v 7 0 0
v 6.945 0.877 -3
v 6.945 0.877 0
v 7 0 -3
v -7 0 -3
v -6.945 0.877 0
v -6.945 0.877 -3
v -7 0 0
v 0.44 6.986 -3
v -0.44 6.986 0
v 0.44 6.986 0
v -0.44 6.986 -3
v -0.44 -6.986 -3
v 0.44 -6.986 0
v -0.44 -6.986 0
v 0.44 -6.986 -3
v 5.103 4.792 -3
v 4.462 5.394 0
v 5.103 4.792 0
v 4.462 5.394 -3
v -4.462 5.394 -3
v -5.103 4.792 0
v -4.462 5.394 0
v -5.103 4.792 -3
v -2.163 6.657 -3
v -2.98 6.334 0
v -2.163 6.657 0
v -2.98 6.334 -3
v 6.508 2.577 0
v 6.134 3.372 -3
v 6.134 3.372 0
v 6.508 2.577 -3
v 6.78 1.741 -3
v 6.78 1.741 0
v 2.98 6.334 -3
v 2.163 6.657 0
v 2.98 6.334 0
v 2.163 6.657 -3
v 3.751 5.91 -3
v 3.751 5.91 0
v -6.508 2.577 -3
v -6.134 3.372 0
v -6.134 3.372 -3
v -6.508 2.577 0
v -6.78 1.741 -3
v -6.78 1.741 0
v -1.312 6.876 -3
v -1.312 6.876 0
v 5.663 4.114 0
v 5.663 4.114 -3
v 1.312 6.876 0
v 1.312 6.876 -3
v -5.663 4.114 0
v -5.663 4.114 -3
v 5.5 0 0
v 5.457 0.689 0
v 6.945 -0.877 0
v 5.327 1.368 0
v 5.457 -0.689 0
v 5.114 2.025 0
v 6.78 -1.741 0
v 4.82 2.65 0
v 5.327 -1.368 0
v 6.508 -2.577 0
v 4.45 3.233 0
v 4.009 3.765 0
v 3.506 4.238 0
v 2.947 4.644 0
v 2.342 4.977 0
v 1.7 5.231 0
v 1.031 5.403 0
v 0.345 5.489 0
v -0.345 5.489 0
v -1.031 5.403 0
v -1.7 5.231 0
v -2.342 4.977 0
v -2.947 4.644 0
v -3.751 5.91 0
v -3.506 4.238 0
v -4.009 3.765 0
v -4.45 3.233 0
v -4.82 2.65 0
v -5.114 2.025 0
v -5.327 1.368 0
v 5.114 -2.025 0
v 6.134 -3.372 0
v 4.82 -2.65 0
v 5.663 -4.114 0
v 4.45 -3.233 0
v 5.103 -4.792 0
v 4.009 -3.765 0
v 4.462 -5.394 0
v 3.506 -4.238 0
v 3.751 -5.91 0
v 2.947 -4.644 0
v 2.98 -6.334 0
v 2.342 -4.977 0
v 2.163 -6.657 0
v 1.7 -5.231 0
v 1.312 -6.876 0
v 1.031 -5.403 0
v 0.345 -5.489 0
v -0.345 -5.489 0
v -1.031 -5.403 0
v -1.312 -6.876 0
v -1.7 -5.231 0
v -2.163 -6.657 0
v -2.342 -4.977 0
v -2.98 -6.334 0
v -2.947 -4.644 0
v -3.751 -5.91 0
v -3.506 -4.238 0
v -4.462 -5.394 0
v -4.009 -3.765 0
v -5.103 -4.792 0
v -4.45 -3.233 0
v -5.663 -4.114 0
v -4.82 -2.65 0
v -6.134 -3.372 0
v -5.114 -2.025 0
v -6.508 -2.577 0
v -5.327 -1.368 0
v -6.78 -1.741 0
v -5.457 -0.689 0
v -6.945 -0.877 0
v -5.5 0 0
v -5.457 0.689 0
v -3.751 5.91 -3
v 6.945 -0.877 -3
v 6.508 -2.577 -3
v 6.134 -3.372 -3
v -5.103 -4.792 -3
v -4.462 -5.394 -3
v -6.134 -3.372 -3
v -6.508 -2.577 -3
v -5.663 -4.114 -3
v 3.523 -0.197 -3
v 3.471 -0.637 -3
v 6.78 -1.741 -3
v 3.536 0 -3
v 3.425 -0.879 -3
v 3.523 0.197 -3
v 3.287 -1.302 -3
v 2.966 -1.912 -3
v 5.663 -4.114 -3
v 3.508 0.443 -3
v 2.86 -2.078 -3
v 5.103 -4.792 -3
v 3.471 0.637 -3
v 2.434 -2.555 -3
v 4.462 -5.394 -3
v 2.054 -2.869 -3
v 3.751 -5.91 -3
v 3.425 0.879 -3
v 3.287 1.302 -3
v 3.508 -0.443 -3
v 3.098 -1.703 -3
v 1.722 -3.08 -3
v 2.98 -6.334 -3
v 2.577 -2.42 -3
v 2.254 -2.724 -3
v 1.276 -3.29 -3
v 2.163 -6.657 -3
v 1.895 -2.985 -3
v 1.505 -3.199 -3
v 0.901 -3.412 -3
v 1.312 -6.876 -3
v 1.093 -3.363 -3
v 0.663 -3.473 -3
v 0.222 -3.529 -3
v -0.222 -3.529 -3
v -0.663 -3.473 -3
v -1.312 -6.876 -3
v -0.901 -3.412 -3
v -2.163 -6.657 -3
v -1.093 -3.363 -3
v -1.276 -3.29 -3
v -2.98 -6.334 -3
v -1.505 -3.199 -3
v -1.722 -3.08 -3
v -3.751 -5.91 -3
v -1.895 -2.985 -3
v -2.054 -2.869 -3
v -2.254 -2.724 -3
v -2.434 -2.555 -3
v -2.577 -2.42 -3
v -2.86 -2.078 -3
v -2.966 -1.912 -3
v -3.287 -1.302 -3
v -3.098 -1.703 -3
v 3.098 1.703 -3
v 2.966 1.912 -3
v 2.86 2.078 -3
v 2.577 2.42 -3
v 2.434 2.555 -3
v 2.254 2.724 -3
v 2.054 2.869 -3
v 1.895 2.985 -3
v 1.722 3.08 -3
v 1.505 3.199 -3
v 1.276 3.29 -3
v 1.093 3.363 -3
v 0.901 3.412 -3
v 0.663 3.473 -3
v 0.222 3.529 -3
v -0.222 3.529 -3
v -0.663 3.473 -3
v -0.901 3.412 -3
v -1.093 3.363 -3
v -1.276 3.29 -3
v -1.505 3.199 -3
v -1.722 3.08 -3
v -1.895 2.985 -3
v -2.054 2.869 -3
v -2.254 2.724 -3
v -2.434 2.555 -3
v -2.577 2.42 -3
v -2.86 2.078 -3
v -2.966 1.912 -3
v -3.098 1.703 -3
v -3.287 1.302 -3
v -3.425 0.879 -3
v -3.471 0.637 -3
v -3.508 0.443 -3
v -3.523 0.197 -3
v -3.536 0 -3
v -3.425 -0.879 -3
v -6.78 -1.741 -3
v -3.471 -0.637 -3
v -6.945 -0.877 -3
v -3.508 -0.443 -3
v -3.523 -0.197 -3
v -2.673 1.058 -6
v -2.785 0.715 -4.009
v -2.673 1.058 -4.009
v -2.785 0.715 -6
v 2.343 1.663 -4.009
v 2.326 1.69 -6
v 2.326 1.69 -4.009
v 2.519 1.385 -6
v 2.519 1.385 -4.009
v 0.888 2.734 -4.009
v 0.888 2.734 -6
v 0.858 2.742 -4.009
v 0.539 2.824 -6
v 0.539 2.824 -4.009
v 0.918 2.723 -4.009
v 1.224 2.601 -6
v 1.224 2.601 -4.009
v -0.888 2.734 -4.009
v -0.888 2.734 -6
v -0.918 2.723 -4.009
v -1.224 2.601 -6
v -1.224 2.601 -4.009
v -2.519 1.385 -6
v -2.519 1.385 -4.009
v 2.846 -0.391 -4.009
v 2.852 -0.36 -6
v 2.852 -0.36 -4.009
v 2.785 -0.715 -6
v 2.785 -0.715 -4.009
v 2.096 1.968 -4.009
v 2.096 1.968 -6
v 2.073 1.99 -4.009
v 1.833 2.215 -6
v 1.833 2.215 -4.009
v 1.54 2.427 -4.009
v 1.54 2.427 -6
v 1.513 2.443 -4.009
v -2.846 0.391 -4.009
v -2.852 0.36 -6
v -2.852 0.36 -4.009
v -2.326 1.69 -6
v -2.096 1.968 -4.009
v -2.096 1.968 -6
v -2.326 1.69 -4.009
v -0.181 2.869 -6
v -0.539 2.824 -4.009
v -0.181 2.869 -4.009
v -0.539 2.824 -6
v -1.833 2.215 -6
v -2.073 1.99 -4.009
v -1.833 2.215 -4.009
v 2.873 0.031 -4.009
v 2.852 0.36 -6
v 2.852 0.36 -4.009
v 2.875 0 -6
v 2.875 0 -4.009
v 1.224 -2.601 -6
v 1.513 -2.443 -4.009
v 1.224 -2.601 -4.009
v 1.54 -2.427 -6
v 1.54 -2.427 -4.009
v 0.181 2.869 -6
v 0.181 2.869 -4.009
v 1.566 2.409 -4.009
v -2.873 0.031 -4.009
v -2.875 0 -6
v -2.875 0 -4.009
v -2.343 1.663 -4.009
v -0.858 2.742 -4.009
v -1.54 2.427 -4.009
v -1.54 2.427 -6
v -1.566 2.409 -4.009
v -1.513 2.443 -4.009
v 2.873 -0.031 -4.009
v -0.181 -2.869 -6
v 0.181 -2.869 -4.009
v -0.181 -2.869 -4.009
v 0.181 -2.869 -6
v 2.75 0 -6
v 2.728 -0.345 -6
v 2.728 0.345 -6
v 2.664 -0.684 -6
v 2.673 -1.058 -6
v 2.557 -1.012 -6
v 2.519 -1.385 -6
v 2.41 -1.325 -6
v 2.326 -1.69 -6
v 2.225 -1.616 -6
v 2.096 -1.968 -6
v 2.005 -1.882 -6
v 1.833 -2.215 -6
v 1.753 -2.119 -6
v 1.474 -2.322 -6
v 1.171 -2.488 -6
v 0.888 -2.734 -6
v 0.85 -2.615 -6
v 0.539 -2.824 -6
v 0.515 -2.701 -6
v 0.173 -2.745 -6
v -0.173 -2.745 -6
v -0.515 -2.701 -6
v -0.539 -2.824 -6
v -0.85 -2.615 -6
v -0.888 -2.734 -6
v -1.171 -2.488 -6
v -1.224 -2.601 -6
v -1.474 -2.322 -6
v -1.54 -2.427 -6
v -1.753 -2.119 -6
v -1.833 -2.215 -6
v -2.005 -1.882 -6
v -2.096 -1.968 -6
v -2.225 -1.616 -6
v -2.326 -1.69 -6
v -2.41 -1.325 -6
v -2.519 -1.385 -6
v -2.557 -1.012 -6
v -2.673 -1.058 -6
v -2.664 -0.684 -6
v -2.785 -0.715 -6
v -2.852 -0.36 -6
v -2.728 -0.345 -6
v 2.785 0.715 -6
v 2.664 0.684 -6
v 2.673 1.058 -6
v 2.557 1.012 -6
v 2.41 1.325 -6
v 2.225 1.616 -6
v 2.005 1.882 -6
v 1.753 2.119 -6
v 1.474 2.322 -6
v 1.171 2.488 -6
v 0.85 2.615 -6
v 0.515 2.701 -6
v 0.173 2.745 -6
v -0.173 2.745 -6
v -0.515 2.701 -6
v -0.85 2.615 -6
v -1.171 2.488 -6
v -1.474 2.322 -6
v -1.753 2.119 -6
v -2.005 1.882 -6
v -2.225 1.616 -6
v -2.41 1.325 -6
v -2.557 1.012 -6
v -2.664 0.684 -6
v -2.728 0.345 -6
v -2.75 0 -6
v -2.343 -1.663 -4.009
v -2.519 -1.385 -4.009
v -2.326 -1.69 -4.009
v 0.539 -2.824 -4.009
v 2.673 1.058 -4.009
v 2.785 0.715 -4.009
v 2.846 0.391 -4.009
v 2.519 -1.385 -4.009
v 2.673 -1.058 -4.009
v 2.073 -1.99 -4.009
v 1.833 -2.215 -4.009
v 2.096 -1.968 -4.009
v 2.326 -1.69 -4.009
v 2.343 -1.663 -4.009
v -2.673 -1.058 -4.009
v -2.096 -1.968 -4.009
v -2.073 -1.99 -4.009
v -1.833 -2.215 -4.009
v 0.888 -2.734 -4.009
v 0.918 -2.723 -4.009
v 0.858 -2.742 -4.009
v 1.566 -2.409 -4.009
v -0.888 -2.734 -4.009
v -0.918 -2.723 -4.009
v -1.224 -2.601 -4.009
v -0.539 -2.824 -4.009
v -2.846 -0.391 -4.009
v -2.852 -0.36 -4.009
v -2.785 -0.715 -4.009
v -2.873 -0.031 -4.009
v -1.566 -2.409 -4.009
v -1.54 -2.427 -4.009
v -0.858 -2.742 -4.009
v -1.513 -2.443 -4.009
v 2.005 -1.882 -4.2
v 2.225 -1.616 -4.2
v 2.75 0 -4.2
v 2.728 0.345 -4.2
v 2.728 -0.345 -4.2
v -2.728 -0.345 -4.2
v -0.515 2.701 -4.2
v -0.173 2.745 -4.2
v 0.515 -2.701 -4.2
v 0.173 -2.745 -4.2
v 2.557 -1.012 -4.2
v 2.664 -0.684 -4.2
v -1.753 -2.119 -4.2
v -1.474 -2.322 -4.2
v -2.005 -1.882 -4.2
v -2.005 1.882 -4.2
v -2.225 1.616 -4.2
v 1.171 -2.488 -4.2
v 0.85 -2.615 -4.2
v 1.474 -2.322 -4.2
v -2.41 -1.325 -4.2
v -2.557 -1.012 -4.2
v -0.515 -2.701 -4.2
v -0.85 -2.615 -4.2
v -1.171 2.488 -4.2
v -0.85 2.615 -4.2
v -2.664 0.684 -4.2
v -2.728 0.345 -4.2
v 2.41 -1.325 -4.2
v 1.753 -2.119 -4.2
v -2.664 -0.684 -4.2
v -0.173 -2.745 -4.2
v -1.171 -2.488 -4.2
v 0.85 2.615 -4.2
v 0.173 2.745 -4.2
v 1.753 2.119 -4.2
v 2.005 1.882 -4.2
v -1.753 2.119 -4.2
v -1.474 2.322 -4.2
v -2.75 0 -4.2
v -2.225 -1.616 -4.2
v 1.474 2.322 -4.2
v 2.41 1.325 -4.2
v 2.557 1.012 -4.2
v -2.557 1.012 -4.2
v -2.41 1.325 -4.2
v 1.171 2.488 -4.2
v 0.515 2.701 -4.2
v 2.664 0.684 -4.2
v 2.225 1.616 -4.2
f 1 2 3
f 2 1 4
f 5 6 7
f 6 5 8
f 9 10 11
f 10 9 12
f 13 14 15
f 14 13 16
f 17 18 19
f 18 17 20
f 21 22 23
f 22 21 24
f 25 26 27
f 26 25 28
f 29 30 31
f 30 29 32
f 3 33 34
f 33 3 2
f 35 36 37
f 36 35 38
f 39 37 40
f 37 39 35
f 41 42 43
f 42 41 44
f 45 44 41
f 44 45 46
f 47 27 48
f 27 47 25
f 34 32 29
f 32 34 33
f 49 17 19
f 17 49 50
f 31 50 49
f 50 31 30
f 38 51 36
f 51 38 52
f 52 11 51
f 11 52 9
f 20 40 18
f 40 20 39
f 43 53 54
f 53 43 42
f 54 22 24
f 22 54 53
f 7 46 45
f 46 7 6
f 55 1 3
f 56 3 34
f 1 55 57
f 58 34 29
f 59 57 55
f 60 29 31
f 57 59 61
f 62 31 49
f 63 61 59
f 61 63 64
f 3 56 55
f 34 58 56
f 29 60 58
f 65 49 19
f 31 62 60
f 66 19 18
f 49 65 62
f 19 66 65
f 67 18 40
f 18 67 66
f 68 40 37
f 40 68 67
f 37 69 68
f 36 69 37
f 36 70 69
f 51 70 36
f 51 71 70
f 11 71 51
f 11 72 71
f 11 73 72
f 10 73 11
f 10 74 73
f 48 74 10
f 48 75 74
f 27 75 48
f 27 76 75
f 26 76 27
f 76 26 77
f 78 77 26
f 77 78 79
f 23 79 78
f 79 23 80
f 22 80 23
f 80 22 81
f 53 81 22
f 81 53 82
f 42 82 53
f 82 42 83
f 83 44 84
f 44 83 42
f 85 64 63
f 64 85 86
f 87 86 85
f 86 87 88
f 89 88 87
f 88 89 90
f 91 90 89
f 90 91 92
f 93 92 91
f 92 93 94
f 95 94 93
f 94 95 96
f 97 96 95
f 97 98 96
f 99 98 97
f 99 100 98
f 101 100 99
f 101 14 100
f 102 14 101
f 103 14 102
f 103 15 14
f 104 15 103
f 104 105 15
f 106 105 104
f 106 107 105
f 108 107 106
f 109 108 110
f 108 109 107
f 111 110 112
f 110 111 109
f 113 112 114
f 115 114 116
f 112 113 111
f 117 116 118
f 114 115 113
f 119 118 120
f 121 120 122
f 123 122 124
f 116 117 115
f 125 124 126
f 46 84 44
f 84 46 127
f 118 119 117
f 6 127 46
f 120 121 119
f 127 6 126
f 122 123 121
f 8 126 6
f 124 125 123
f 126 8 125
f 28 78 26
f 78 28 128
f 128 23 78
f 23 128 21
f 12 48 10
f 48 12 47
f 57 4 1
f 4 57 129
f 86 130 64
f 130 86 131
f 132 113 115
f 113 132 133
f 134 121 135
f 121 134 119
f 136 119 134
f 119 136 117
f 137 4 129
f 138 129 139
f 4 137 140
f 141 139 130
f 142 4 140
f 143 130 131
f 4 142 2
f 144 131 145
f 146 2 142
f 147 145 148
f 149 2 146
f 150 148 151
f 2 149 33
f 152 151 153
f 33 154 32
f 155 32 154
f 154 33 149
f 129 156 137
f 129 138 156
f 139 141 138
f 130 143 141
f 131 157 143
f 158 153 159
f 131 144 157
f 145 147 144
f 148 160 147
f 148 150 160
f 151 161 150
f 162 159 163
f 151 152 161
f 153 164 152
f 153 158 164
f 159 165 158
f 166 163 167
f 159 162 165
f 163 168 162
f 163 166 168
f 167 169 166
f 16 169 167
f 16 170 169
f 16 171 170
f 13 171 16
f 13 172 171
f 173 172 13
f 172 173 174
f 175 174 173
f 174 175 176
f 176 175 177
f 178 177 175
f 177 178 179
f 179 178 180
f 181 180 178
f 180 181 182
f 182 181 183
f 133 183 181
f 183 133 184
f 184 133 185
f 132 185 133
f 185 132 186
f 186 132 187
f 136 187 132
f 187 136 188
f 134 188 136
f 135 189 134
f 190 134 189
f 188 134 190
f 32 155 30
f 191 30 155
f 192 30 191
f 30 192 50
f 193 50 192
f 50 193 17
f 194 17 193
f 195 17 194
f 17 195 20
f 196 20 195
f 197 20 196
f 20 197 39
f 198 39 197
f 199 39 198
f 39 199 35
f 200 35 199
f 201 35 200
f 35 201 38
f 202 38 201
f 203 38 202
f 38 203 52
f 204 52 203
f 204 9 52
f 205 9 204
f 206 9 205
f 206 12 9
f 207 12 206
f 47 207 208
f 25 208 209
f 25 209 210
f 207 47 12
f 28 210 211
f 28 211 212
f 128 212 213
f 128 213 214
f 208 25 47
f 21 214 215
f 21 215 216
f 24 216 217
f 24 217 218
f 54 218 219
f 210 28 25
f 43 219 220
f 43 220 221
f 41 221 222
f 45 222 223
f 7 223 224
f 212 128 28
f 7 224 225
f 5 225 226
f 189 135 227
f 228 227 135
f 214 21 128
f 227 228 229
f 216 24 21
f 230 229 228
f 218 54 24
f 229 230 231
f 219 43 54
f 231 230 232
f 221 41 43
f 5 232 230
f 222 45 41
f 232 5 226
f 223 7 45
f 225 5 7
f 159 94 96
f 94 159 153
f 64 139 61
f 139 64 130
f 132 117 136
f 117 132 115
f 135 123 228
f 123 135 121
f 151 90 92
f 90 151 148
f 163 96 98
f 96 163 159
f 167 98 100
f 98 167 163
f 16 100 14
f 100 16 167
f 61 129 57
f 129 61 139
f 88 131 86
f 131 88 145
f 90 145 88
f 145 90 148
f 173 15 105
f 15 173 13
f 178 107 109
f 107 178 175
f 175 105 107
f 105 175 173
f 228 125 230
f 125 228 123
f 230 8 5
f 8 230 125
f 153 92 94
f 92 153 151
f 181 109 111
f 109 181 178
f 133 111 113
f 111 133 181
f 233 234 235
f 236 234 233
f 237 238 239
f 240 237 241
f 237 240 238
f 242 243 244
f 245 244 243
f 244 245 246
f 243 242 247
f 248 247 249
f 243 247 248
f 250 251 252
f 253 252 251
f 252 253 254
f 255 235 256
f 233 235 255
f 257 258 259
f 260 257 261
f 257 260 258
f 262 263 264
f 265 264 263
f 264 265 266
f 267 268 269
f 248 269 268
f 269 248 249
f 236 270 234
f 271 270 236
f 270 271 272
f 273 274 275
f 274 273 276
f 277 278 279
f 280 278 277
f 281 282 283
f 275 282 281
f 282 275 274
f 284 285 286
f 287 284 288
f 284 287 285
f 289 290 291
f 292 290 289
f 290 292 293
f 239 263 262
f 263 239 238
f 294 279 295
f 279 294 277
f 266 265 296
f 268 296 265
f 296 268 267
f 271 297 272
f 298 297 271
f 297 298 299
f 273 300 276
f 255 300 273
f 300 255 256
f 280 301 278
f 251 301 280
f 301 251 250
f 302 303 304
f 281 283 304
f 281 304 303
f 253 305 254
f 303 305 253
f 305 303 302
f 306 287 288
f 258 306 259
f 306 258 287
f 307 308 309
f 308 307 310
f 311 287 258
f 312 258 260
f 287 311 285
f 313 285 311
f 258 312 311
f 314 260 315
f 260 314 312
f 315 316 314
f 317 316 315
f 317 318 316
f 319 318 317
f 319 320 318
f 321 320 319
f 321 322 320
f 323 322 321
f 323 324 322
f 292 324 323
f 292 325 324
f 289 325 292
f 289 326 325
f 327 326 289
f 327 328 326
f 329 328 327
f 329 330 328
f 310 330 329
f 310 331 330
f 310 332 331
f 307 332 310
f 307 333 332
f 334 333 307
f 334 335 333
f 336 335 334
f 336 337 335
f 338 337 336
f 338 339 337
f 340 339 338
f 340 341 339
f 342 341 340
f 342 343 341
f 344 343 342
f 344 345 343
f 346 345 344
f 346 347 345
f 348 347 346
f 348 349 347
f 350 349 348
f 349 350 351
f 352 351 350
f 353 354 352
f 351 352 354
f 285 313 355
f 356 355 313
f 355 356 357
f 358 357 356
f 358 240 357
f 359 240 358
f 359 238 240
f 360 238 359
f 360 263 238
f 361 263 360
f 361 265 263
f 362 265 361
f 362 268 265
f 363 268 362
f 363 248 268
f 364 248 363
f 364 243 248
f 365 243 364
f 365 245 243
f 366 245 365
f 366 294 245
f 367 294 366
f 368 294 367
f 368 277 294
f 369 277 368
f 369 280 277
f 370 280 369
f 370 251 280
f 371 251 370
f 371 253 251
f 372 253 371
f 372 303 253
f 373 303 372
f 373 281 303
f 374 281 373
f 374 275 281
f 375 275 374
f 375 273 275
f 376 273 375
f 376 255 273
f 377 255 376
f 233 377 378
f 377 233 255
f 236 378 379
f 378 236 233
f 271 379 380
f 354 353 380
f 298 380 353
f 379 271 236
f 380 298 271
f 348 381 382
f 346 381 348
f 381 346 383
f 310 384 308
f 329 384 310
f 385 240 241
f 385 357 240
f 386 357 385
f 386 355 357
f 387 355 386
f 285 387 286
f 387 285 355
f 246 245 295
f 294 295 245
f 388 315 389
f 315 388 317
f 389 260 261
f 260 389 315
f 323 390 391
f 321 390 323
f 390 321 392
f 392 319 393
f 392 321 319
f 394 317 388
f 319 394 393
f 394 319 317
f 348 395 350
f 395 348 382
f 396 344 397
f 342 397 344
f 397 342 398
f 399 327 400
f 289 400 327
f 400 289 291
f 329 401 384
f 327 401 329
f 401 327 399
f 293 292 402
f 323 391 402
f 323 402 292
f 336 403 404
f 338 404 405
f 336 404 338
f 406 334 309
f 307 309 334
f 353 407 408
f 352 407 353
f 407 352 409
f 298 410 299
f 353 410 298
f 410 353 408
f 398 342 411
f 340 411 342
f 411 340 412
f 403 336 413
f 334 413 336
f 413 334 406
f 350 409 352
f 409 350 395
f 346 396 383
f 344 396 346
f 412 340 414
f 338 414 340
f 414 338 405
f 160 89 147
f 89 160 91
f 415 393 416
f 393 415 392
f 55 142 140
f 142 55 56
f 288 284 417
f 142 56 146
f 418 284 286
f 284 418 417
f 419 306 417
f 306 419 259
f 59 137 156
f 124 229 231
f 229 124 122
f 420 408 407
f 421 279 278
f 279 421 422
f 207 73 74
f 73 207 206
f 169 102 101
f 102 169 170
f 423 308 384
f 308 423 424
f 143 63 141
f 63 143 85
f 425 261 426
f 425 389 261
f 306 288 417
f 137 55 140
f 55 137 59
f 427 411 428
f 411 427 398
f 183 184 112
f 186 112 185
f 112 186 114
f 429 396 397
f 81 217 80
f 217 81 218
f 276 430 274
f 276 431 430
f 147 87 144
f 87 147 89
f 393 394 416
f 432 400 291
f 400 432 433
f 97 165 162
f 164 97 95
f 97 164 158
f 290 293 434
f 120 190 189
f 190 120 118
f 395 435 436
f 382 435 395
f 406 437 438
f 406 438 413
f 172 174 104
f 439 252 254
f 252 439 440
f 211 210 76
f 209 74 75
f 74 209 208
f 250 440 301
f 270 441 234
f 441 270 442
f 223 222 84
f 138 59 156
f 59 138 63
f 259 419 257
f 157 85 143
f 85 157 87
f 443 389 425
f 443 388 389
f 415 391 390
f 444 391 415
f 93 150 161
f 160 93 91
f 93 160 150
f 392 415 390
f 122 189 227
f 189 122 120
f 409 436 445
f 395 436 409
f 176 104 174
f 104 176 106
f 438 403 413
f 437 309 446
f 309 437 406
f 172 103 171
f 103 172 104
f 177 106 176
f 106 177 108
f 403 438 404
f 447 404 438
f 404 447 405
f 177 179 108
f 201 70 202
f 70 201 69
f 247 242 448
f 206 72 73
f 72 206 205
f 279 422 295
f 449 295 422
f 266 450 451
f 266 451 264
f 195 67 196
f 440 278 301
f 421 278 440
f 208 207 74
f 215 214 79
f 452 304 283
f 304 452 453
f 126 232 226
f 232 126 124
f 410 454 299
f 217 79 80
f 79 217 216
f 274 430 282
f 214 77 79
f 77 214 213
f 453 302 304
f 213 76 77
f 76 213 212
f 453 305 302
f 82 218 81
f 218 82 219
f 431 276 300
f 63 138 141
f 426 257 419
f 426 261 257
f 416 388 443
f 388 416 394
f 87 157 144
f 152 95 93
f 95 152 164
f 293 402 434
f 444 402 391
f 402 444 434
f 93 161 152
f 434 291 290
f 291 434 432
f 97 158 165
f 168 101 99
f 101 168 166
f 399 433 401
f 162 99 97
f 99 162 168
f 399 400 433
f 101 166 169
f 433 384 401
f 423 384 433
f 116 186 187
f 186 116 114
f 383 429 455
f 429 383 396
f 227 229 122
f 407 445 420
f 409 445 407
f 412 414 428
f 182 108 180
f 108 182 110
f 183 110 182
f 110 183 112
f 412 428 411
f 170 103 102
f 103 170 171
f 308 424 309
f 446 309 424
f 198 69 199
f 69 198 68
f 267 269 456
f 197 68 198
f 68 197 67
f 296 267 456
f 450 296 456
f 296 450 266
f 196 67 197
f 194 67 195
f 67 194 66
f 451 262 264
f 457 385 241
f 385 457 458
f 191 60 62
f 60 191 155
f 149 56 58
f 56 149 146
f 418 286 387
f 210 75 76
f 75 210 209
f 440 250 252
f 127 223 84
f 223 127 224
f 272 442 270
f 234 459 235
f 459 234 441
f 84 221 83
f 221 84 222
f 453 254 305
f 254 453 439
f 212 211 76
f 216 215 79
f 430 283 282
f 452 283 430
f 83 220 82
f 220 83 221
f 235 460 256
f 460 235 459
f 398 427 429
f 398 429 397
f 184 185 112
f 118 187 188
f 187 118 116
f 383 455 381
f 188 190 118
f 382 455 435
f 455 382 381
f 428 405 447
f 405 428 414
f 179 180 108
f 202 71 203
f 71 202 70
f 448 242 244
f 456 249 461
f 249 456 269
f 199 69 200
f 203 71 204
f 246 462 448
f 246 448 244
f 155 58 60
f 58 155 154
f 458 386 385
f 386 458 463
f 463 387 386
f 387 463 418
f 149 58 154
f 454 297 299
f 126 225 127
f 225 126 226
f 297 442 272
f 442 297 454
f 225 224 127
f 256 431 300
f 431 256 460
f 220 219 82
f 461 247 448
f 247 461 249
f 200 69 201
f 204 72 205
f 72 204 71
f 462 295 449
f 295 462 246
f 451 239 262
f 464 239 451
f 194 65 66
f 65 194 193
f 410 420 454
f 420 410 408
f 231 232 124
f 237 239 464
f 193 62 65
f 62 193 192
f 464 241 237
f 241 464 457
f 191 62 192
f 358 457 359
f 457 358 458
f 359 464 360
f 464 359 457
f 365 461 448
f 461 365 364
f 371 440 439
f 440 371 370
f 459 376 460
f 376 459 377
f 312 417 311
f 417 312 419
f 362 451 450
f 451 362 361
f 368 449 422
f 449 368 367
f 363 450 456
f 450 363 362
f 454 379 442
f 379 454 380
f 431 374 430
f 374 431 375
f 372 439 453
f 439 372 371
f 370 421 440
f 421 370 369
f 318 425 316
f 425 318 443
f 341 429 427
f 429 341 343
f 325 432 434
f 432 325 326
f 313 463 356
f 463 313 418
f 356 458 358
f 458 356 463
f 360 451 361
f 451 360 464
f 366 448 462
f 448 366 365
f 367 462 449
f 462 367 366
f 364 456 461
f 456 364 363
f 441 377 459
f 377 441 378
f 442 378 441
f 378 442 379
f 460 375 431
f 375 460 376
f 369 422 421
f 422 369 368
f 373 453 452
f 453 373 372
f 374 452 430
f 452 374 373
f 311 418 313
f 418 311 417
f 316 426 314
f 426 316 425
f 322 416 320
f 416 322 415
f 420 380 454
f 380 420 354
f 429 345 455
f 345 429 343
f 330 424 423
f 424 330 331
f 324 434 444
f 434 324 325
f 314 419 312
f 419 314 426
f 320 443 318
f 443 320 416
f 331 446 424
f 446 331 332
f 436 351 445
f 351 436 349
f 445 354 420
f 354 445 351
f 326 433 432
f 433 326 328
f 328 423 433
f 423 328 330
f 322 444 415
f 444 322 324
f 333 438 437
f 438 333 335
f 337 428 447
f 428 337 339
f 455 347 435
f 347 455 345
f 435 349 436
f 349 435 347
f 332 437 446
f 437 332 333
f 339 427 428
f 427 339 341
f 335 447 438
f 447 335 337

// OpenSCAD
$fn = 50;


difference() {
	union() {
		translate(v = [0, 0, -3.0000000000]) {
			cylinder(h = 3, r = 7.0000000000);
		}
		translate(v = [0, 0, -6.0000000000]) {
			cylinder(h = 6, r = 2.8750000000);
		}
	}
	union() {
		translate(v = [0, 0, 0]) {
			rotate(a = [0, 0, 0]) {
				difference() {
					union() {
						translate(v = [0, 0, -6.0000000000]) {
							cylinder(h = 6, r = 2.2500000000);
						}
						translate(v = [0, 0, -4.2000000000]) {
							cylinder(h = 4.2000000000, r1 = 2.7500000000, r2 = 5.5000000000);
						}
						translate(v = [0, 0, -6.0000000000]) {
							cylinder(h = 6, r = 2.7500000000);
						}
						translate(v = [0, 0, -6.0000000000]) {
							cylinder(h = 6, r = 2.2500000000);
						}
					}
					union();
				}
			}
		}
	}
}
